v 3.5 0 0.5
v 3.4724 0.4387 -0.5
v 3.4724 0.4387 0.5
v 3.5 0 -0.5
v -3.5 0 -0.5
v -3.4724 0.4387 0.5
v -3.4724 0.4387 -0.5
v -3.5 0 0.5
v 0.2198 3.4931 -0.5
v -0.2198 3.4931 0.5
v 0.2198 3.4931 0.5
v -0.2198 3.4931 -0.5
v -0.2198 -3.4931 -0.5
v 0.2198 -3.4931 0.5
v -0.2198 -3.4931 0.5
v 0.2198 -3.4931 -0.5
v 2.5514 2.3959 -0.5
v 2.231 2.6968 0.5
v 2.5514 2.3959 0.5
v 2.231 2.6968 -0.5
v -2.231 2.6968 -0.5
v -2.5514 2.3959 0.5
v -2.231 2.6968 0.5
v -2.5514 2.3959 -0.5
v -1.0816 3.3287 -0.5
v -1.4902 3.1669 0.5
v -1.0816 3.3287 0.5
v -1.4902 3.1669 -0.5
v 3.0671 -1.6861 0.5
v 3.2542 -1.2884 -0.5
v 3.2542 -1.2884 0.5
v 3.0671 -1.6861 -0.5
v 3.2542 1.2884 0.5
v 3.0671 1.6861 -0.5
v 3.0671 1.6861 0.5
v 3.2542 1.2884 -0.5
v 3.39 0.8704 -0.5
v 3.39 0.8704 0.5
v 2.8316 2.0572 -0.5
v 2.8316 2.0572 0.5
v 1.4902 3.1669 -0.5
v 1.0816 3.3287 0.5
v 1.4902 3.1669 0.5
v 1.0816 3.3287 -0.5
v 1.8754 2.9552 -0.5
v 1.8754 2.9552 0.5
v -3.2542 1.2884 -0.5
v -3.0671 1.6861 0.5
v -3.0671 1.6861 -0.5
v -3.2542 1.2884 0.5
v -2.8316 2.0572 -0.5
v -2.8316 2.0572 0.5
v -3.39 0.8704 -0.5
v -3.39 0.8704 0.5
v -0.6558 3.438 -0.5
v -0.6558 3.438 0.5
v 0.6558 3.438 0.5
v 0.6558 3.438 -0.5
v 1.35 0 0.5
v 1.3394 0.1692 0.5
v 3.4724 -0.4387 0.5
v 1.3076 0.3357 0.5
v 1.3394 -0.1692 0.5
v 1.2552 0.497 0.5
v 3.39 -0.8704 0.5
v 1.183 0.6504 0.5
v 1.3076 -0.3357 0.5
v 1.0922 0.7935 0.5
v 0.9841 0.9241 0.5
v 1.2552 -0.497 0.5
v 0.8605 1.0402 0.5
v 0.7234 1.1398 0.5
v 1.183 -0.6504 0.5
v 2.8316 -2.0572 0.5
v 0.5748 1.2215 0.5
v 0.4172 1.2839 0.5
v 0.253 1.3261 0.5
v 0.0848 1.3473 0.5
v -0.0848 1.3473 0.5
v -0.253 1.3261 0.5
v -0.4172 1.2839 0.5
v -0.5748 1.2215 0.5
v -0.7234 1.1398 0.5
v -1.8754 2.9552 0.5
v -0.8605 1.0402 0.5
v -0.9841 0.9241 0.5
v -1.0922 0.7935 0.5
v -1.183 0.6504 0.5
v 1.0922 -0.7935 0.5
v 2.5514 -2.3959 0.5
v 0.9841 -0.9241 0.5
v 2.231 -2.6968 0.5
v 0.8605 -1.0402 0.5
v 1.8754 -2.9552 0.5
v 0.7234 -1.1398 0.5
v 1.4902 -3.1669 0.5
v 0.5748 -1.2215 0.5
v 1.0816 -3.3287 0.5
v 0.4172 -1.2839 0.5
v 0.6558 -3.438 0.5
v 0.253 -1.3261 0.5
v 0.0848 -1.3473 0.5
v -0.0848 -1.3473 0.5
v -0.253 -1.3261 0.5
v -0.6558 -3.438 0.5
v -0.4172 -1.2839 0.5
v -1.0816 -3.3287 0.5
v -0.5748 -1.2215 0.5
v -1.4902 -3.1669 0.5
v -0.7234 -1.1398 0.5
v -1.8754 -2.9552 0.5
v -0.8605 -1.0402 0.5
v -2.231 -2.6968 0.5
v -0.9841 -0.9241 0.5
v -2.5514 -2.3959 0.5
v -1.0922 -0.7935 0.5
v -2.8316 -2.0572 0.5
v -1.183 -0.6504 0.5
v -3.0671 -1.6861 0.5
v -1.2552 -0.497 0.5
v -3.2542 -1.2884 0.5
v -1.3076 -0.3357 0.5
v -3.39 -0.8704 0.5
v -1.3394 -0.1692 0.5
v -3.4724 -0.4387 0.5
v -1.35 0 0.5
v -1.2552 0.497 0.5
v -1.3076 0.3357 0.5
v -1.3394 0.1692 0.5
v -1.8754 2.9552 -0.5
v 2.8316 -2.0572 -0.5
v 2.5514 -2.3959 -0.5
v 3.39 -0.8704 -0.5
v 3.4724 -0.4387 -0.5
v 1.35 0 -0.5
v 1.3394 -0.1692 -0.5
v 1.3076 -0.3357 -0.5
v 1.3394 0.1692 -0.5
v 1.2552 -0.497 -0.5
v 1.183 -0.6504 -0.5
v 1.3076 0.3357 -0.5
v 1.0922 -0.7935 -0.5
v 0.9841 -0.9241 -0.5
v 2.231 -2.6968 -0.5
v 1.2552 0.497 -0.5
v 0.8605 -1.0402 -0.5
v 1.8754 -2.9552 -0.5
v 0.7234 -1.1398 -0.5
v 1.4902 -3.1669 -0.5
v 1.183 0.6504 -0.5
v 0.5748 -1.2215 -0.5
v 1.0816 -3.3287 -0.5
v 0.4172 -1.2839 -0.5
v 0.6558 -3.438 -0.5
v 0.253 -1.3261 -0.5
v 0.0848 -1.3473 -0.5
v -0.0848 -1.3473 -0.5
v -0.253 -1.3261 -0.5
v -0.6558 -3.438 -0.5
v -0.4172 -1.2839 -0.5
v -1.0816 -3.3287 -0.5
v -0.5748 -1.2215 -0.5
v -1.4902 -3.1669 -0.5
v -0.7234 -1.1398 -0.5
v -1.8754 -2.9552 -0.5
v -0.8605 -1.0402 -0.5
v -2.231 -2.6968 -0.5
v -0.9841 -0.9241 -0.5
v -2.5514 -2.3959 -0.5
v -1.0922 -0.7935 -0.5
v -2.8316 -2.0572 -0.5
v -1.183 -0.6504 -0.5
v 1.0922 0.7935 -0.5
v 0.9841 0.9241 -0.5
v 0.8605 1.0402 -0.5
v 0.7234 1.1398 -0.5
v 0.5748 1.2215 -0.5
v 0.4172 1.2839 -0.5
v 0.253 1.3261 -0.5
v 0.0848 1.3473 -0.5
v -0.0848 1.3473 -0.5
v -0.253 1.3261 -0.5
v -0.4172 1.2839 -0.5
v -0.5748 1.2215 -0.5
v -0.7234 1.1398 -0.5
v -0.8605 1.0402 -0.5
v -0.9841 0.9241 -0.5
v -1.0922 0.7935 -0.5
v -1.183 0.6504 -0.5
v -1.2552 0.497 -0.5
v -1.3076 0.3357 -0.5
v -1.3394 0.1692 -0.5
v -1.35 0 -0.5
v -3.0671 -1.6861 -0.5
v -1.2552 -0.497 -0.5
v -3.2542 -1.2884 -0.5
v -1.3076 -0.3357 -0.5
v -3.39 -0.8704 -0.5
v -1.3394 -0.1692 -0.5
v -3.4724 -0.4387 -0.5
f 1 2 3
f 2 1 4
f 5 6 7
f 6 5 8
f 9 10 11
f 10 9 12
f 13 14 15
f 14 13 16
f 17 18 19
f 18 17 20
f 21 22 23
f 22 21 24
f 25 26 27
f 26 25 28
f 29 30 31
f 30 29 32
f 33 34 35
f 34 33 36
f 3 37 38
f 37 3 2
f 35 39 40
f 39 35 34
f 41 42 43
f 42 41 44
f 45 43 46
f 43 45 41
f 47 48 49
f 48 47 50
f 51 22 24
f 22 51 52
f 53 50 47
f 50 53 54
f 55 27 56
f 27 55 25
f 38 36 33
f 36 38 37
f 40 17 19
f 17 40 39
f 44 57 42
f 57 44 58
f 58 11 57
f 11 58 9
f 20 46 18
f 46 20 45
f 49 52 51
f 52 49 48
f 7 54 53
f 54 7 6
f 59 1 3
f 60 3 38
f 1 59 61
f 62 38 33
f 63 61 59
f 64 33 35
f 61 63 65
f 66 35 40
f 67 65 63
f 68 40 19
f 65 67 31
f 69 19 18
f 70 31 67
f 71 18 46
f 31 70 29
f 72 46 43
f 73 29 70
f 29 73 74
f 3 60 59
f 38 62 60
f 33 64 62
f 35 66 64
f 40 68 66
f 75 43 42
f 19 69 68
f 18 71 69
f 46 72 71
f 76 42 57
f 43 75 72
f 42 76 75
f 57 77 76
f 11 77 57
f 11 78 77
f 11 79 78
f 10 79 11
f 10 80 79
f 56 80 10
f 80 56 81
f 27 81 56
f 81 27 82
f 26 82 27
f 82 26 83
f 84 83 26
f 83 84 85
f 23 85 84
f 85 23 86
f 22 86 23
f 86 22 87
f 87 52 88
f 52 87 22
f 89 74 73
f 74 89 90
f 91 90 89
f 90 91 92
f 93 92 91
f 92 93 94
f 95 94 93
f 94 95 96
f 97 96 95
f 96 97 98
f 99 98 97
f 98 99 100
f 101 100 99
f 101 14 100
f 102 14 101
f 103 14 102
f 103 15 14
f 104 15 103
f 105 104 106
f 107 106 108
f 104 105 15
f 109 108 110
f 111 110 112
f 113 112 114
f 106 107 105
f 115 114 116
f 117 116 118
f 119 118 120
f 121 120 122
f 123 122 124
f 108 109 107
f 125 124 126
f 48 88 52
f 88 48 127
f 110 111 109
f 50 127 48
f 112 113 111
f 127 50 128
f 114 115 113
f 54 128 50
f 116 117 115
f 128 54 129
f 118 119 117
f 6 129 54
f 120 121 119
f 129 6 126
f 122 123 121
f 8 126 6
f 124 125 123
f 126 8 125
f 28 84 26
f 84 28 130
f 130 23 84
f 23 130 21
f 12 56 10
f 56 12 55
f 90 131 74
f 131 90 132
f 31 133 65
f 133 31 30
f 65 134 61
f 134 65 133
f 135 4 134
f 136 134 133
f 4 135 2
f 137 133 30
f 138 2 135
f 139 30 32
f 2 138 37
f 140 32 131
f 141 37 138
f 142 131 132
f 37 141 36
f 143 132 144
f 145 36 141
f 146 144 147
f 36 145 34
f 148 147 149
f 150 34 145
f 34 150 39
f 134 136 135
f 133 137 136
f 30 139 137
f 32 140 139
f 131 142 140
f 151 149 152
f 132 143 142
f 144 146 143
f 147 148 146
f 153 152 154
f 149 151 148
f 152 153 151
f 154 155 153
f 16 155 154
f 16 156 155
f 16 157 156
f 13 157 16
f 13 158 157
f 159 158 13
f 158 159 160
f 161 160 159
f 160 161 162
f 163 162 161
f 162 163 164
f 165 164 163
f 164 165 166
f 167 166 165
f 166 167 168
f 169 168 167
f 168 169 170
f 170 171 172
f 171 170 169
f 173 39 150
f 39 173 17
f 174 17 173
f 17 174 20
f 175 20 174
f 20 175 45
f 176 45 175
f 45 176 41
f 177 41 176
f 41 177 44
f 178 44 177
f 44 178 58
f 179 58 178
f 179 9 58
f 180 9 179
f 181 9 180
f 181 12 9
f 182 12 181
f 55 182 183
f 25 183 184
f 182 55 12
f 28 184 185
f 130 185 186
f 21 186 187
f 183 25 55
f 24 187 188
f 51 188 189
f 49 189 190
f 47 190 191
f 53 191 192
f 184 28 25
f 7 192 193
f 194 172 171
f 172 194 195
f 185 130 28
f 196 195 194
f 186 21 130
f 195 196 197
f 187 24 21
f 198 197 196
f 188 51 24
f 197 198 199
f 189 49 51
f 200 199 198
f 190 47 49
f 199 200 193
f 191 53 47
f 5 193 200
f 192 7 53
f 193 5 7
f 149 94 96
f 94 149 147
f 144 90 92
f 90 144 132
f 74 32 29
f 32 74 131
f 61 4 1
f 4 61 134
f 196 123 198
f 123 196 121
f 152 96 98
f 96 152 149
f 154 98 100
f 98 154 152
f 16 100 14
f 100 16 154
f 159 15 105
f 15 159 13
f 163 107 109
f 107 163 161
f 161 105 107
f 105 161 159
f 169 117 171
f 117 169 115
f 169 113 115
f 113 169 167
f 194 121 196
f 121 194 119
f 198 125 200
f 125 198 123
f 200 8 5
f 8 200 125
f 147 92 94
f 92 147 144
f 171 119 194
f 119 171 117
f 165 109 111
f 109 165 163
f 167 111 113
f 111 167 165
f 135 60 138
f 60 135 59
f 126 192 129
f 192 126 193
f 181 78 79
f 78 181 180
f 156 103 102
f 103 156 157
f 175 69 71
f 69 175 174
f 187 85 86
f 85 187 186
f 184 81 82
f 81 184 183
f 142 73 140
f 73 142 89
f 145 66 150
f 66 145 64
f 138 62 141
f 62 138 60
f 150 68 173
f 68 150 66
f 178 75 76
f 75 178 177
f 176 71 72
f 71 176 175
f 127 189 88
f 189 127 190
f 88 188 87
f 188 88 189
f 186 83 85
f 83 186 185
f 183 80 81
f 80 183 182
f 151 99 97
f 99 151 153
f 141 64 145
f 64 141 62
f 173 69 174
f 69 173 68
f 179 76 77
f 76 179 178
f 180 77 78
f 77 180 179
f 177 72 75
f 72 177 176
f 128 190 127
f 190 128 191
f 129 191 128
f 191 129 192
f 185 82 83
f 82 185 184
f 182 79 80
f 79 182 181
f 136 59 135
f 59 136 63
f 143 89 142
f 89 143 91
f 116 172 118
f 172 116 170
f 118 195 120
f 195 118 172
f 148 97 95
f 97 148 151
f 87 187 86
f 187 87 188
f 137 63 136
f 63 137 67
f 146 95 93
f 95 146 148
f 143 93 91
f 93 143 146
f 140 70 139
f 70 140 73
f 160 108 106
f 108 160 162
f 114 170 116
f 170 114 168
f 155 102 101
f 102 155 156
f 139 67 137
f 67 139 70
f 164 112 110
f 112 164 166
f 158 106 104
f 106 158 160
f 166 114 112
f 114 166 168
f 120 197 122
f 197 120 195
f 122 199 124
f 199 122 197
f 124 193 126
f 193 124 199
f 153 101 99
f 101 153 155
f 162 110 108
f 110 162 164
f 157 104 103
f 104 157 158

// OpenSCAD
$fn = 50;


difference() {
	union() {
		translate(v = [0, 0, -0.5000000000]) {
			cylinder(h = 1, r = 3.5000000000);
		}
	}
	union() {
		translate(v = [0, 0, -100.0000000000]) {
			cylinder(h = 200, r = 1.3500000000);
		}
	}
}
